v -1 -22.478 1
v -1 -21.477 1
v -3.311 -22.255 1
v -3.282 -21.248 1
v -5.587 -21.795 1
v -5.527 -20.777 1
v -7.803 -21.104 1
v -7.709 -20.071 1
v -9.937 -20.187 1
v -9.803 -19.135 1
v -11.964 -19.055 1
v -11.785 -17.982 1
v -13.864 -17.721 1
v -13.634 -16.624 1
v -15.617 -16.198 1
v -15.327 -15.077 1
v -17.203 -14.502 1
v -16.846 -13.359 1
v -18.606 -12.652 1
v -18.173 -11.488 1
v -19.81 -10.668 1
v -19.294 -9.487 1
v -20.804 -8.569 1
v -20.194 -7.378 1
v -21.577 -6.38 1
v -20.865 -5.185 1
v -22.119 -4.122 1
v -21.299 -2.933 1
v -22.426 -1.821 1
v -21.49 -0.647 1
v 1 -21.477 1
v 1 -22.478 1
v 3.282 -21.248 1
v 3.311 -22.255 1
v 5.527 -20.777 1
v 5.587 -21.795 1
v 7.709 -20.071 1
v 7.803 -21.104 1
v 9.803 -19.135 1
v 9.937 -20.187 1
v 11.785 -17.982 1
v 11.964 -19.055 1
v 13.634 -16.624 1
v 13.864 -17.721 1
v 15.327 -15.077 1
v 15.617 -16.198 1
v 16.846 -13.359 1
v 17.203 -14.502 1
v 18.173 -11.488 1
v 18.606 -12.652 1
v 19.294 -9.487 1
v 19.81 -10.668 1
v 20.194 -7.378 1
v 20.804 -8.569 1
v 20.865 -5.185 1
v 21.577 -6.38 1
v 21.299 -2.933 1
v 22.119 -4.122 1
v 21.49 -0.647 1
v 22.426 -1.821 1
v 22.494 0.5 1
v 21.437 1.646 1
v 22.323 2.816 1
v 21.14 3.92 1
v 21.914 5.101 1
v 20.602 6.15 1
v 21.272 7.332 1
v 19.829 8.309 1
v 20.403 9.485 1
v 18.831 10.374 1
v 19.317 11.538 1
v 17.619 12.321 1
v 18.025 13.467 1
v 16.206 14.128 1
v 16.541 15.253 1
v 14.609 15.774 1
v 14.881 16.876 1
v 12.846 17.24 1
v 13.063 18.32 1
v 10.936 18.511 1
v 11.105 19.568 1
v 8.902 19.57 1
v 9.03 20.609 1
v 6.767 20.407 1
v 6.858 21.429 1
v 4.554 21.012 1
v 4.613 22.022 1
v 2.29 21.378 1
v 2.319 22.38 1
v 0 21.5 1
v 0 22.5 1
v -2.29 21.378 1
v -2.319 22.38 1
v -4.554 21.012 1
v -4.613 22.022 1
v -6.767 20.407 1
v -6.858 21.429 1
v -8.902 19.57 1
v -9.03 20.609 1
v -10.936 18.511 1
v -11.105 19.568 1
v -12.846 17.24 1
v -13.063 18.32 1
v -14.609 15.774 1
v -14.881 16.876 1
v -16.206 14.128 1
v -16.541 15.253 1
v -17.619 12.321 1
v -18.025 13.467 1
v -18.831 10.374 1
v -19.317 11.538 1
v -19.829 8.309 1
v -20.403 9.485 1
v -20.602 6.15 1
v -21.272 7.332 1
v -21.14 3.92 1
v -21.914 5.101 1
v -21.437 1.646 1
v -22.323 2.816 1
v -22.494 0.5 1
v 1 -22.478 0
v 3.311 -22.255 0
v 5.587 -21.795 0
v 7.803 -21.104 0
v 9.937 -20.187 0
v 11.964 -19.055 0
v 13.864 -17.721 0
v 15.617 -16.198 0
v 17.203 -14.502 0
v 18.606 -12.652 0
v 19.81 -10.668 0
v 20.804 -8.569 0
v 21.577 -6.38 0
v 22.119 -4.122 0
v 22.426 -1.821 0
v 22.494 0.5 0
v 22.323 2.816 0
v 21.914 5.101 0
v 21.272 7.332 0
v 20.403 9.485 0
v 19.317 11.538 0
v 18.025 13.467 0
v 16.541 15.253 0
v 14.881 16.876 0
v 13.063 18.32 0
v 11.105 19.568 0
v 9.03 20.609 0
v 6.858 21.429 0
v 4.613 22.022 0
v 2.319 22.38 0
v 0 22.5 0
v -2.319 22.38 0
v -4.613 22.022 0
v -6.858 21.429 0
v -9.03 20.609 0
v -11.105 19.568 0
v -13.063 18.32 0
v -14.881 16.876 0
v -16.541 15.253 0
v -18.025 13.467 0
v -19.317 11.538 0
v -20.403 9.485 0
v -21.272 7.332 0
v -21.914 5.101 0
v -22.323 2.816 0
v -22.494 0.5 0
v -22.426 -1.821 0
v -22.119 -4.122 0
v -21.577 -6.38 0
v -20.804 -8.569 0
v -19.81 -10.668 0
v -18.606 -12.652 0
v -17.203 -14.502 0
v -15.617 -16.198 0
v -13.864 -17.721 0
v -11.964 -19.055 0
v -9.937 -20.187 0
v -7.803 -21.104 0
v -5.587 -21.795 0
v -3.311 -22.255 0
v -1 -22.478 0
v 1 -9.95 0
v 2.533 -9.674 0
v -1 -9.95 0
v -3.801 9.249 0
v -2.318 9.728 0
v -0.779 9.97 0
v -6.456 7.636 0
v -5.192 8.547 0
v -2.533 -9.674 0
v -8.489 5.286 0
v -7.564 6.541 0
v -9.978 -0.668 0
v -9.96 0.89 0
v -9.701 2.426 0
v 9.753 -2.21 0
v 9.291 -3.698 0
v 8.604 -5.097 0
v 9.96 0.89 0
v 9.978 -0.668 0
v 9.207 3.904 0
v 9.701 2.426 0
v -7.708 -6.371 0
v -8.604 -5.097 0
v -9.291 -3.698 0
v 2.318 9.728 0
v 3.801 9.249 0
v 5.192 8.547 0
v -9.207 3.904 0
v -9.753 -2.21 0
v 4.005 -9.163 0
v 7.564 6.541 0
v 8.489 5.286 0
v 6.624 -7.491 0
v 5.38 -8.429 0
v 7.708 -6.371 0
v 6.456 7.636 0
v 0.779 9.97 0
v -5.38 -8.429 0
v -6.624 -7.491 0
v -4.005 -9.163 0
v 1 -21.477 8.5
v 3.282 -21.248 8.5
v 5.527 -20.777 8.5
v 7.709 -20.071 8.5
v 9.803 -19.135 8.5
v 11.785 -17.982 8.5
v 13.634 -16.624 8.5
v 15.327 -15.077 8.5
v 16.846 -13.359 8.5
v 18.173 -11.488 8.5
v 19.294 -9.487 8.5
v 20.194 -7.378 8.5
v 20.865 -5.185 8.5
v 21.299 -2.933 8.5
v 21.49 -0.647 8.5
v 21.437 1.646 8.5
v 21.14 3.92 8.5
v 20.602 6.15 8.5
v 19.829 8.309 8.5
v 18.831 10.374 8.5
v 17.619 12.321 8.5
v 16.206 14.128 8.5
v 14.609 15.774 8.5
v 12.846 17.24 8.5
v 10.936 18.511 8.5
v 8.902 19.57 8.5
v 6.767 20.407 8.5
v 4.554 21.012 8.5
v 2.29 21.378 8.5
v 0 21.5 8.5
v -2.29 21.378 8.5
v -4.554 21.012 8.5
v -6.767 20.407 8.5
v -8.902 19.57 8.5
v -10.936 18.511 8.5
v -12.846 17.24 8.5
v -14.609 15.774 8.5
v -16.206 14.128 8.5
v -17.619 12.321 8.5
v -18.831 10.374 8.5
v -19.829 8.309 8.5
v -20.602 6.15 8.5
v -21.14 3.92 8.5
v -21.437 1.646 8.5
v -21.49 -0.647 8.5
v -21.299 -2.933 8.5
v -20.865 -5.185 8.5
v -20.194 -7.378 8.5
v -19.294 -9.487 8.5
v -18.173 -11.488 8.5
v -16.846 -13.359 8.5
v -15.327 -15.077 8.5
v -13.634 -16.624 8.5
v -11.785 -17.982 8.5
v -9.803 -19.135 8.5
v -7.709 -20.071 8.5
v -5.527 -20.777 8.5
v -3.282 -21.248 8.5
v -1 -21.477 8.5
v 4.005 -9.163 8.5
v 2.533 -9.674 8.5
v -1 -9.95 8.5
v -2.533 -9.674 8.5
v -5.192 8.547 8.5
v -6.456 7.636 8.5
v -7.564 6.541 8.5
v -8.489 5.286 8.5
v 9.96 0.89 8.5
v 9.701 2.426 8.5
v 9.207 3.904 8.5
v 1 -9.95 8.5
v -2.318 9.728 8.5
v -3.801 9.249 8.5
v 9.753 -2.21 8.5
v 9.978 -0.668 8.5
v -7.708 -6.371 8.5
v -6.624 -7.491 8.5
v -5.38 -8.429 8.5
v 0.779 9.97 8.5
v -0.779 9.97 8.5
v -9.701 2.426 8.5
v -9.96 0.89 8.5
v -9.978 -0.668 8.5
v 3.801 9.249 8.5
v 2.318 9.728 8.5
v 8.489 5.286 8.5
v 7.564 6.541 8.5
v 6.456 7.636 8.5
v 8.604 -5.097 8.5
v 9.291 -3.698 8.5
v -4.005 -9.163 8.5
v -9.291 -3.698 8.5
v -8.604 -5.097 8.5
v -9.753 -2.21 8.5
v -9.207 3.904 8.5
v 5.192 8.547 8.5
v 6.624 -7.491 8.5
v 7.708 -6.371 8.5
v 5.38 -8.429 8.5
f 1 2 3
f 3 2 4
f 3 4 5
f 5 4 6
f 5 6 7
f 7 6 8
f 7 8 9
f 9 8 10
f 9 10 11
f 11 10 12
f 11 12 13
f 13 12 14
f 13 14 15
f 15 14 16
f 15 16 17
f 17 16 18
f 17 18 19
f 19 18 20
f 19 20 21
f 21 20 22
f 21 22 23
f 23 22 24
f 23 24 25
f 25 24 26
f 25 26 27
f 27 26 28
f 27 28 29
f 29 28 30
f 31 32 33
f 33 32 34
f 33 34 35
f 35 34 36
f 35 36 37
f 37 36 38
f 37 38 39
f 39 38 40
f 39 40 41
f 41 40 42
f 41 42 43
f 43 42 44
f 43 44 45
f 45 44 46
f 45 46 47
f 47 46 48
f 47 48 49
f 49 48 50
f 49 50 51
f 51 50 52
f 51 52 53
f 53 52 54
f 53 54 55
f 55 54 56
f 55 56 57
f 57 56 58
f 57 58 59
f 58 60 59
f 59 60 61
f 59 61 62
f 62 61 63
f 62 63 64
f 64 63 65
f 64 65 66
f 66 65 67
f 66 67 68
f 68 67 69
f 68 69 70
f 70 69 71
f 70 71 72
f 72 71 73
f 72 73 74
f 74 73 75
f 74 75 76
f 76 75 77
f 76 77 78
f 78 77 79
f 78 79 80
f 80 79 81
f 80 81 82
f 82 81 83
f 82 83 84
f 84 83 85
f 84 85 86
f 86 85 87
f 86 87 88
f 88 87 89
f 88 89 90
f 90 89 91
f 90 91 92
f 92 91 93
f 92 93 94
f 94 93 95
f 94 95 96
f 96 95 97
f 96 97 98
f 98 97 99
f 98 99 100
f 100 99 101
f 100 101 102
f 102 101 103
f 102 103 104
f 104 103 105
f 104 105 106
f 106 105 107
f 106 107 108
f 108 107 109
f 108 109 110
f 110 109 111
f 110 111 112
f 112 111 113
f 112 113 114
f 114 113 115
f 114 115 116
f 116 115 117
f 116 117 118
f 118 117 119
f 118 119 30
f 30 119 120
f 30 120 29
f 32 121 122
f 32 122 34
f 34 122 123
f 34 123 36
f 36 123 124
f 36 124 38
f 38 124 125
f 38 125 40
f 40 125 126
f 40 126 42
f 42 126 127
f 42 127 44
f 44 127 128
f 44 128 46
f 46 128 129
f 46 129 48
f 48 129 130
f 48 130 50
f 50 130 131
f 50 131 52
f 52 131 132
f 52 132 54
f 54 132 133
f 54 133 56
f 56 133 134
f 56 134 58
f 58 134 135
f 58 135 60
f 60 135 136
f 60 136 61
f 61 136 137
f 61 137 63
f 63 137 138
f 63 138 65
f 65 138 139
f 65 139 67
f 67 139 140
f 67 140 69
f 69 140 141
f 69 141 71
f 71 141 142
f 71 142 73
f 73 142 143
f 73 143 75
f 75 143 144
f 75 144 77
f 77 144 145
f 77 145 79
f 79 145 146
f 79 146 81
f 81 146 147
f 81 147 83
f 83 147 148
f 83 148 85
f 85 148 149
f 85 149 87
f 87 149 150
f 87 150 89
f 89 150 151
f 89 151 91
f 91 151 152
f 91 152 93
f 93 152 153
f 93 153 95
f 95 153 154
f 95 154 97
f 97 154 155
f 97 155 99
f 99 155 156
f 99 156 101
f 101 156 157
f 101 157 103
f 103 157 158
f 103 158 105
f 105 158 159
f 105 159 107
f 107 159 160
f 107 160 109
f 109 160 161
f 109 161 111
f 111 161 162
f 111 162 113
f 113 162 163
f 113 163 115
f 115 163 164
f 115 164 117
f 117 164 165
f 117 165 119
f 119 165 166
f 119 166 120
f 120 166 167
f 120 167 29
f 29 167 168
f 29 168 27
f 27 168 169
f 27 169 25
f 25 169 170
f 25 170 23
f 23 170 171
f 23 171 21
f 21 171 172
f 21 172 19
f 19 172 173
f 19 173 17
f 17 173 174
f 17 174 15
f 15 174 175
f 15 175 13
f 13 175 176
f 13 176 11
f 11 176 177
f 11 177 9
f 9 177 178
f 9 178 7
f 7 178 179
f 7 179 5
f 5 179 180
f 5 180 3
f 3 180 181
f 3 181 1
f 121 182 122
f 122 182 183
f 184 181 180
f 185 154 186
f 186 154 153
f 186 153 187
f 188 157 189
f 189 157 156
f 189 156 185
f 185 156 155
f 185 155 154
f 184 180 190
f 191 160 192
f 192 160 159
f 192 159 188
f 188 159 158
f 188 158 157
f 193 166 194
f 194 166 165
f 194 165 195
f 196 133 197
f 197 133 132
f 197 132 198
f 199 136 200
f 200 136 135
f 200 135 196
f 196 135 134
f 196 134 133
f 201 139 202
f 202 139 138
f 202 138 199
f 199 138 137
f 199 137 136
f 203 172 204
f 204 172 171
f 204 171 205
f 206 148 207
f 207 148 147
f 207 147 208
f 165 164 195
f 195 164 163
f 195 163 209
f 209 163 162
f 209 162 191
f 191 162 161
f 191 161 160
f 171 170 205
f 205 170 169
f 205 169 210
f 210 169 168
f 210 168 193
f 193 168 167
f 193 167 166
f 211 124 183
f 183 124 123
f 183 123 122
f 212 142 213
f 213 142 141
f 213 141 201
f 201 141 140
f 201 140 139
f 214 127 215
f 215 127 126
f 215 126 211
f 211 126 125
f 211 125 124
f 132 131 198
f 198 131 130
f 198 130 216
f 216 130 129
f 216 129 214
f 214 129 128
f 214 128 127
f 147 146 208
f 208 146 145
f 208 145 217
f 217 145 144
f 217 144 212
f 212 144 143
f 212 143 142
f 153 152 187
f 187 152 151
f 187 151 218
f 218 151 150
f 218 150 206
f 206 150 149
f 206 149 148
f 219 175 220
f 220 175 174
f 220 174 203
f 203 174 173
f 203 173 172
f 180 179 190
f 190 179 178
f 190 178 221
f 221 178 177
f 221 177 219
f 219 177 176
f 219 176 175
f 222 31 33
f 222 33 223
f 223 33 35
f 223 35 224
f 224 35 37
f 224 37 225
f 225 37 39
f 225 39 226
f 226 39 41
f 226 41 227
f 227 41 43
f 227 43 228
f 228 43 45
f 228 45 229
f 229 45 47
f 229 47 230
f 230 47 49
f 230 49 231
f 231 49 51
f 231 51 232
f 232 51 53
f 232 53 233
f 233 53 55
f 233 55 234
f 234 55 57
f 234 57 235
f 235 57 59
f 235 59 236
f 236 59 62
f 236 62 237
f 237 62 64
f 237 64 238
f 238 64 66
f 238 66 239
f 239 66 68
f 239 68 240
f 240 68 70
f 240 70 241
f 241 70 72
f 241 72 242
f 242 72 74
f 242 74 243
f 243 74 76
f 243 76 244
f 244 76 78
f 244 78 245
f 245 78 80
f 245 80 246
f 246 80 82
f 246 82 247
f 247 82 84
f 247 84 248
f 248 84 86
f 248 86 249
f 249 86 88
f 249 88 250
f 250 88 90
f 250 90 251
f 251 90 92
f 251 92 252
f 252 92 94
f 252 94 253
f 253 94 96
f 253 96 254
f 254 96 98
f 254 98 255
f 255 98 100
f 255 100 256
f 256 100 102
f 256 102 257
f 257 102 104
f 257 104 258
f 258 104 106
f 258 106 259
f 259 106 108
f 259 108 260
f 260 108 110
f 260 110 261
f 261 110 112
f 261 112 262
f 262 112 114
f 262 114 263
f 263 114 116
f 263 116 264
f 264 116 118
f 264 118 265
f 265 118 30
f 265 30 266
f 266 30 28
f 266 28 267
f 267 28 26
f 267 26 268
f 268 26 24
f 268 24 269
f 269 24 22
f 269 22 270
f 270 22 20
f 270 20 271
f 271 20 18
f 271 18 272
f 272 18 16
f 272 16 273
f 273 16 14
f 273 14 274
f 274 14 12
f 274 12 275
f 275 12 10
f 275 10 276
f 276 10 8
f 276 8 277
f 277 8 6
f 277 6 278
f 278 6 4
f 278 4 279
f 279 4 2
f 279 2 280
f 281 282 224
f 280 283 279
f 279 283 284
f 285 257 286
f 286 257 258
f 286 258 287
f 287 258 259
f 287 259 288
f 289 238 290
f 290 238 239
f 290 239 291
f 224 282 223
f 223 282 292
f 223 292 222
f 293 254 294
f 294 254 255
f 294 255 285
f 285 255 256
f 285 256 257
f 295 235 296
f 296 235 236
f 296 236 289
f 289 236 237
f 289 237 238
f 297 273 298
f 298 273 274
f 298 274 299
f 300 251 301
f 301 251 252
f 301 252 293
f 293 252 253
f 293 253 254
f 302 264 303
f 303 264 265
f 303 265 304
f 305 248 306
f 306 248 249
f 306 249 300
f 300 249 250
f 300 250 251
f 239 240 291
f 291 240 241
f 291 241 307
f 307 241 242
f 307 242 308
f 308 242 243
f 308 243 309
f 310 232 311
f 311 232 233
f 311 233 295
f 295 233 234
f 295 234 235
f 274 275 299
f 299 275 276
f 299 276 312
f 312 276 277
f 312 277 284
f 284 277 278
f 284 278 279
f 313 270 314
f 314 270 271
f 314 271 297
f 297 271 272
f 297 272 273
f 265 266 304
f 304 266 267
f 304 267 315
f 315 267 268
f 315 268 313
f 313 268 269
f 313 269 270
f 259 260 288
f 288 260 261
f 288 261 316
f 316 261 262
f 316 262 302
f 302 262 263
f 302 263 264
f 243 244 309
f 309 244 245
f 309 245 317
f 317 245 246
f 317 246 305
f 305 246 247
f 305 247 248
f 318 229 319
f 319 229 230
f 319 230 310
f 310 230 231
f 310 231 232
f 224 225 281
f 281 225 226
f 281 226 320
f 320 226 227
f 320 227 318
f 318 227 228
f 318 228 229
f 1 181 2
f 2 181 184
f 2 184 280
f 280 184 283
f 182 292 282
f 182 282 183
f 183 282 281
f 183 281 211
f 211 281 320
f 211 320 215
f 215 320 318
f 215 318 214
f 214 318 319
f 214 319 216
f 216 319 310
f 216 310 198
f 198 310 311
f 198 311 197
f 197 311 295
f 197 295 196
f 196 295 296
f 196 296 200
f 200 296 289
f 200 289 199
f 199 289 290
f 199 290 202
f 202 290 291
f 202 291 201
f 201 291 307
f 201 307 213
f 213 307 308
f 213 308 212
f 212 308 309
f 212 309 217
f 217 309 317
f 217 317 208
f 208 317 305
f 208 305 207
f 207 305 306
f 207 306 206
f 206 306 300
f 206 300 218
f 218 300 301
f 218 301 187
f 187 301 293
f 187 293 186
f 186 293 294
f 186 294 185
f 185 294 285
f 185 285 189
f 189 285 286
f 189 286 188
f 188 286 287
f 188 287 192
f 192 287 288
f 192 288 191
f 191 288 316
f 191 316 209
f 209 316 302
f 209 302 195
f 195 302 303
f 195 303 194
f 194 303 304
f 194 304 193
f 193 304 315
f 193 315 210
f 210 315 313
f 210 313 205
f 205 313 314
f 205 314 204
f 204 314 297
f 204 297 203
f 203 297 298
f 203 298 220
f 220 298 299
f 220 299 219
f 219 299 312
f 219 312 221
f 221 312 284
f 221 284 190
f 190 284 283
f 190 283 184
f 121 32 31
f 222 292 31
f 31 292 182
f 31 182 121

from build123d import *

# Parameters (mm, degrees)
SZKIC2_R                    = 22.5
DODANIE_WYCI_GNI_CIE1_DEPTH = 1
SZKIC3_R                    = 21.5
DODANIE_WYCI_GNI_CIE2_DEPTH = 7.5
WYTNIJ_WYCI_GNI_CIE1_DEPTH  = 10


with BuildPart() as part:
    # Szkic2 → Dodanie-wyciągnięcie1 (new body)
    with BuildSketch(Plane.XY):
        Circle(SZKIC2_R)
    extrude(amount=DODANIE_WYCI_GNI_CIE1_DEPTH)

    # Szkic3 → Dodanie-wyciągnięcie2 (add)
    with BuildSketch(Plane.XY.offset(1)):
        Circle(SZKIC3_R)
    extrude(amount=DODANIE_WYCI_GNI_CIE2_DEPTH)

    # Szkic4 → Wytnij-wyciągnięcie1 (cut)
    with BuildSketch(Plane.XY.offset(8.5)):
        with BuildLine():
            Line((-1, -9.949874371), (-1, -23.658625842))
            Line((-1, -23.658625842), (1, -23.658625842))
            Line((1, -23.658625842), (1, -9.949874371))
            ThreePointArc((1, -9.949874371), (0, 10), (-1, -9.949874371))
        make_face()
    extrude(amount=-WYTNIJ_WYCI_GNI_CIE1_DEPTH, mode=Mode.SUBTRACT)


solid = part.part
